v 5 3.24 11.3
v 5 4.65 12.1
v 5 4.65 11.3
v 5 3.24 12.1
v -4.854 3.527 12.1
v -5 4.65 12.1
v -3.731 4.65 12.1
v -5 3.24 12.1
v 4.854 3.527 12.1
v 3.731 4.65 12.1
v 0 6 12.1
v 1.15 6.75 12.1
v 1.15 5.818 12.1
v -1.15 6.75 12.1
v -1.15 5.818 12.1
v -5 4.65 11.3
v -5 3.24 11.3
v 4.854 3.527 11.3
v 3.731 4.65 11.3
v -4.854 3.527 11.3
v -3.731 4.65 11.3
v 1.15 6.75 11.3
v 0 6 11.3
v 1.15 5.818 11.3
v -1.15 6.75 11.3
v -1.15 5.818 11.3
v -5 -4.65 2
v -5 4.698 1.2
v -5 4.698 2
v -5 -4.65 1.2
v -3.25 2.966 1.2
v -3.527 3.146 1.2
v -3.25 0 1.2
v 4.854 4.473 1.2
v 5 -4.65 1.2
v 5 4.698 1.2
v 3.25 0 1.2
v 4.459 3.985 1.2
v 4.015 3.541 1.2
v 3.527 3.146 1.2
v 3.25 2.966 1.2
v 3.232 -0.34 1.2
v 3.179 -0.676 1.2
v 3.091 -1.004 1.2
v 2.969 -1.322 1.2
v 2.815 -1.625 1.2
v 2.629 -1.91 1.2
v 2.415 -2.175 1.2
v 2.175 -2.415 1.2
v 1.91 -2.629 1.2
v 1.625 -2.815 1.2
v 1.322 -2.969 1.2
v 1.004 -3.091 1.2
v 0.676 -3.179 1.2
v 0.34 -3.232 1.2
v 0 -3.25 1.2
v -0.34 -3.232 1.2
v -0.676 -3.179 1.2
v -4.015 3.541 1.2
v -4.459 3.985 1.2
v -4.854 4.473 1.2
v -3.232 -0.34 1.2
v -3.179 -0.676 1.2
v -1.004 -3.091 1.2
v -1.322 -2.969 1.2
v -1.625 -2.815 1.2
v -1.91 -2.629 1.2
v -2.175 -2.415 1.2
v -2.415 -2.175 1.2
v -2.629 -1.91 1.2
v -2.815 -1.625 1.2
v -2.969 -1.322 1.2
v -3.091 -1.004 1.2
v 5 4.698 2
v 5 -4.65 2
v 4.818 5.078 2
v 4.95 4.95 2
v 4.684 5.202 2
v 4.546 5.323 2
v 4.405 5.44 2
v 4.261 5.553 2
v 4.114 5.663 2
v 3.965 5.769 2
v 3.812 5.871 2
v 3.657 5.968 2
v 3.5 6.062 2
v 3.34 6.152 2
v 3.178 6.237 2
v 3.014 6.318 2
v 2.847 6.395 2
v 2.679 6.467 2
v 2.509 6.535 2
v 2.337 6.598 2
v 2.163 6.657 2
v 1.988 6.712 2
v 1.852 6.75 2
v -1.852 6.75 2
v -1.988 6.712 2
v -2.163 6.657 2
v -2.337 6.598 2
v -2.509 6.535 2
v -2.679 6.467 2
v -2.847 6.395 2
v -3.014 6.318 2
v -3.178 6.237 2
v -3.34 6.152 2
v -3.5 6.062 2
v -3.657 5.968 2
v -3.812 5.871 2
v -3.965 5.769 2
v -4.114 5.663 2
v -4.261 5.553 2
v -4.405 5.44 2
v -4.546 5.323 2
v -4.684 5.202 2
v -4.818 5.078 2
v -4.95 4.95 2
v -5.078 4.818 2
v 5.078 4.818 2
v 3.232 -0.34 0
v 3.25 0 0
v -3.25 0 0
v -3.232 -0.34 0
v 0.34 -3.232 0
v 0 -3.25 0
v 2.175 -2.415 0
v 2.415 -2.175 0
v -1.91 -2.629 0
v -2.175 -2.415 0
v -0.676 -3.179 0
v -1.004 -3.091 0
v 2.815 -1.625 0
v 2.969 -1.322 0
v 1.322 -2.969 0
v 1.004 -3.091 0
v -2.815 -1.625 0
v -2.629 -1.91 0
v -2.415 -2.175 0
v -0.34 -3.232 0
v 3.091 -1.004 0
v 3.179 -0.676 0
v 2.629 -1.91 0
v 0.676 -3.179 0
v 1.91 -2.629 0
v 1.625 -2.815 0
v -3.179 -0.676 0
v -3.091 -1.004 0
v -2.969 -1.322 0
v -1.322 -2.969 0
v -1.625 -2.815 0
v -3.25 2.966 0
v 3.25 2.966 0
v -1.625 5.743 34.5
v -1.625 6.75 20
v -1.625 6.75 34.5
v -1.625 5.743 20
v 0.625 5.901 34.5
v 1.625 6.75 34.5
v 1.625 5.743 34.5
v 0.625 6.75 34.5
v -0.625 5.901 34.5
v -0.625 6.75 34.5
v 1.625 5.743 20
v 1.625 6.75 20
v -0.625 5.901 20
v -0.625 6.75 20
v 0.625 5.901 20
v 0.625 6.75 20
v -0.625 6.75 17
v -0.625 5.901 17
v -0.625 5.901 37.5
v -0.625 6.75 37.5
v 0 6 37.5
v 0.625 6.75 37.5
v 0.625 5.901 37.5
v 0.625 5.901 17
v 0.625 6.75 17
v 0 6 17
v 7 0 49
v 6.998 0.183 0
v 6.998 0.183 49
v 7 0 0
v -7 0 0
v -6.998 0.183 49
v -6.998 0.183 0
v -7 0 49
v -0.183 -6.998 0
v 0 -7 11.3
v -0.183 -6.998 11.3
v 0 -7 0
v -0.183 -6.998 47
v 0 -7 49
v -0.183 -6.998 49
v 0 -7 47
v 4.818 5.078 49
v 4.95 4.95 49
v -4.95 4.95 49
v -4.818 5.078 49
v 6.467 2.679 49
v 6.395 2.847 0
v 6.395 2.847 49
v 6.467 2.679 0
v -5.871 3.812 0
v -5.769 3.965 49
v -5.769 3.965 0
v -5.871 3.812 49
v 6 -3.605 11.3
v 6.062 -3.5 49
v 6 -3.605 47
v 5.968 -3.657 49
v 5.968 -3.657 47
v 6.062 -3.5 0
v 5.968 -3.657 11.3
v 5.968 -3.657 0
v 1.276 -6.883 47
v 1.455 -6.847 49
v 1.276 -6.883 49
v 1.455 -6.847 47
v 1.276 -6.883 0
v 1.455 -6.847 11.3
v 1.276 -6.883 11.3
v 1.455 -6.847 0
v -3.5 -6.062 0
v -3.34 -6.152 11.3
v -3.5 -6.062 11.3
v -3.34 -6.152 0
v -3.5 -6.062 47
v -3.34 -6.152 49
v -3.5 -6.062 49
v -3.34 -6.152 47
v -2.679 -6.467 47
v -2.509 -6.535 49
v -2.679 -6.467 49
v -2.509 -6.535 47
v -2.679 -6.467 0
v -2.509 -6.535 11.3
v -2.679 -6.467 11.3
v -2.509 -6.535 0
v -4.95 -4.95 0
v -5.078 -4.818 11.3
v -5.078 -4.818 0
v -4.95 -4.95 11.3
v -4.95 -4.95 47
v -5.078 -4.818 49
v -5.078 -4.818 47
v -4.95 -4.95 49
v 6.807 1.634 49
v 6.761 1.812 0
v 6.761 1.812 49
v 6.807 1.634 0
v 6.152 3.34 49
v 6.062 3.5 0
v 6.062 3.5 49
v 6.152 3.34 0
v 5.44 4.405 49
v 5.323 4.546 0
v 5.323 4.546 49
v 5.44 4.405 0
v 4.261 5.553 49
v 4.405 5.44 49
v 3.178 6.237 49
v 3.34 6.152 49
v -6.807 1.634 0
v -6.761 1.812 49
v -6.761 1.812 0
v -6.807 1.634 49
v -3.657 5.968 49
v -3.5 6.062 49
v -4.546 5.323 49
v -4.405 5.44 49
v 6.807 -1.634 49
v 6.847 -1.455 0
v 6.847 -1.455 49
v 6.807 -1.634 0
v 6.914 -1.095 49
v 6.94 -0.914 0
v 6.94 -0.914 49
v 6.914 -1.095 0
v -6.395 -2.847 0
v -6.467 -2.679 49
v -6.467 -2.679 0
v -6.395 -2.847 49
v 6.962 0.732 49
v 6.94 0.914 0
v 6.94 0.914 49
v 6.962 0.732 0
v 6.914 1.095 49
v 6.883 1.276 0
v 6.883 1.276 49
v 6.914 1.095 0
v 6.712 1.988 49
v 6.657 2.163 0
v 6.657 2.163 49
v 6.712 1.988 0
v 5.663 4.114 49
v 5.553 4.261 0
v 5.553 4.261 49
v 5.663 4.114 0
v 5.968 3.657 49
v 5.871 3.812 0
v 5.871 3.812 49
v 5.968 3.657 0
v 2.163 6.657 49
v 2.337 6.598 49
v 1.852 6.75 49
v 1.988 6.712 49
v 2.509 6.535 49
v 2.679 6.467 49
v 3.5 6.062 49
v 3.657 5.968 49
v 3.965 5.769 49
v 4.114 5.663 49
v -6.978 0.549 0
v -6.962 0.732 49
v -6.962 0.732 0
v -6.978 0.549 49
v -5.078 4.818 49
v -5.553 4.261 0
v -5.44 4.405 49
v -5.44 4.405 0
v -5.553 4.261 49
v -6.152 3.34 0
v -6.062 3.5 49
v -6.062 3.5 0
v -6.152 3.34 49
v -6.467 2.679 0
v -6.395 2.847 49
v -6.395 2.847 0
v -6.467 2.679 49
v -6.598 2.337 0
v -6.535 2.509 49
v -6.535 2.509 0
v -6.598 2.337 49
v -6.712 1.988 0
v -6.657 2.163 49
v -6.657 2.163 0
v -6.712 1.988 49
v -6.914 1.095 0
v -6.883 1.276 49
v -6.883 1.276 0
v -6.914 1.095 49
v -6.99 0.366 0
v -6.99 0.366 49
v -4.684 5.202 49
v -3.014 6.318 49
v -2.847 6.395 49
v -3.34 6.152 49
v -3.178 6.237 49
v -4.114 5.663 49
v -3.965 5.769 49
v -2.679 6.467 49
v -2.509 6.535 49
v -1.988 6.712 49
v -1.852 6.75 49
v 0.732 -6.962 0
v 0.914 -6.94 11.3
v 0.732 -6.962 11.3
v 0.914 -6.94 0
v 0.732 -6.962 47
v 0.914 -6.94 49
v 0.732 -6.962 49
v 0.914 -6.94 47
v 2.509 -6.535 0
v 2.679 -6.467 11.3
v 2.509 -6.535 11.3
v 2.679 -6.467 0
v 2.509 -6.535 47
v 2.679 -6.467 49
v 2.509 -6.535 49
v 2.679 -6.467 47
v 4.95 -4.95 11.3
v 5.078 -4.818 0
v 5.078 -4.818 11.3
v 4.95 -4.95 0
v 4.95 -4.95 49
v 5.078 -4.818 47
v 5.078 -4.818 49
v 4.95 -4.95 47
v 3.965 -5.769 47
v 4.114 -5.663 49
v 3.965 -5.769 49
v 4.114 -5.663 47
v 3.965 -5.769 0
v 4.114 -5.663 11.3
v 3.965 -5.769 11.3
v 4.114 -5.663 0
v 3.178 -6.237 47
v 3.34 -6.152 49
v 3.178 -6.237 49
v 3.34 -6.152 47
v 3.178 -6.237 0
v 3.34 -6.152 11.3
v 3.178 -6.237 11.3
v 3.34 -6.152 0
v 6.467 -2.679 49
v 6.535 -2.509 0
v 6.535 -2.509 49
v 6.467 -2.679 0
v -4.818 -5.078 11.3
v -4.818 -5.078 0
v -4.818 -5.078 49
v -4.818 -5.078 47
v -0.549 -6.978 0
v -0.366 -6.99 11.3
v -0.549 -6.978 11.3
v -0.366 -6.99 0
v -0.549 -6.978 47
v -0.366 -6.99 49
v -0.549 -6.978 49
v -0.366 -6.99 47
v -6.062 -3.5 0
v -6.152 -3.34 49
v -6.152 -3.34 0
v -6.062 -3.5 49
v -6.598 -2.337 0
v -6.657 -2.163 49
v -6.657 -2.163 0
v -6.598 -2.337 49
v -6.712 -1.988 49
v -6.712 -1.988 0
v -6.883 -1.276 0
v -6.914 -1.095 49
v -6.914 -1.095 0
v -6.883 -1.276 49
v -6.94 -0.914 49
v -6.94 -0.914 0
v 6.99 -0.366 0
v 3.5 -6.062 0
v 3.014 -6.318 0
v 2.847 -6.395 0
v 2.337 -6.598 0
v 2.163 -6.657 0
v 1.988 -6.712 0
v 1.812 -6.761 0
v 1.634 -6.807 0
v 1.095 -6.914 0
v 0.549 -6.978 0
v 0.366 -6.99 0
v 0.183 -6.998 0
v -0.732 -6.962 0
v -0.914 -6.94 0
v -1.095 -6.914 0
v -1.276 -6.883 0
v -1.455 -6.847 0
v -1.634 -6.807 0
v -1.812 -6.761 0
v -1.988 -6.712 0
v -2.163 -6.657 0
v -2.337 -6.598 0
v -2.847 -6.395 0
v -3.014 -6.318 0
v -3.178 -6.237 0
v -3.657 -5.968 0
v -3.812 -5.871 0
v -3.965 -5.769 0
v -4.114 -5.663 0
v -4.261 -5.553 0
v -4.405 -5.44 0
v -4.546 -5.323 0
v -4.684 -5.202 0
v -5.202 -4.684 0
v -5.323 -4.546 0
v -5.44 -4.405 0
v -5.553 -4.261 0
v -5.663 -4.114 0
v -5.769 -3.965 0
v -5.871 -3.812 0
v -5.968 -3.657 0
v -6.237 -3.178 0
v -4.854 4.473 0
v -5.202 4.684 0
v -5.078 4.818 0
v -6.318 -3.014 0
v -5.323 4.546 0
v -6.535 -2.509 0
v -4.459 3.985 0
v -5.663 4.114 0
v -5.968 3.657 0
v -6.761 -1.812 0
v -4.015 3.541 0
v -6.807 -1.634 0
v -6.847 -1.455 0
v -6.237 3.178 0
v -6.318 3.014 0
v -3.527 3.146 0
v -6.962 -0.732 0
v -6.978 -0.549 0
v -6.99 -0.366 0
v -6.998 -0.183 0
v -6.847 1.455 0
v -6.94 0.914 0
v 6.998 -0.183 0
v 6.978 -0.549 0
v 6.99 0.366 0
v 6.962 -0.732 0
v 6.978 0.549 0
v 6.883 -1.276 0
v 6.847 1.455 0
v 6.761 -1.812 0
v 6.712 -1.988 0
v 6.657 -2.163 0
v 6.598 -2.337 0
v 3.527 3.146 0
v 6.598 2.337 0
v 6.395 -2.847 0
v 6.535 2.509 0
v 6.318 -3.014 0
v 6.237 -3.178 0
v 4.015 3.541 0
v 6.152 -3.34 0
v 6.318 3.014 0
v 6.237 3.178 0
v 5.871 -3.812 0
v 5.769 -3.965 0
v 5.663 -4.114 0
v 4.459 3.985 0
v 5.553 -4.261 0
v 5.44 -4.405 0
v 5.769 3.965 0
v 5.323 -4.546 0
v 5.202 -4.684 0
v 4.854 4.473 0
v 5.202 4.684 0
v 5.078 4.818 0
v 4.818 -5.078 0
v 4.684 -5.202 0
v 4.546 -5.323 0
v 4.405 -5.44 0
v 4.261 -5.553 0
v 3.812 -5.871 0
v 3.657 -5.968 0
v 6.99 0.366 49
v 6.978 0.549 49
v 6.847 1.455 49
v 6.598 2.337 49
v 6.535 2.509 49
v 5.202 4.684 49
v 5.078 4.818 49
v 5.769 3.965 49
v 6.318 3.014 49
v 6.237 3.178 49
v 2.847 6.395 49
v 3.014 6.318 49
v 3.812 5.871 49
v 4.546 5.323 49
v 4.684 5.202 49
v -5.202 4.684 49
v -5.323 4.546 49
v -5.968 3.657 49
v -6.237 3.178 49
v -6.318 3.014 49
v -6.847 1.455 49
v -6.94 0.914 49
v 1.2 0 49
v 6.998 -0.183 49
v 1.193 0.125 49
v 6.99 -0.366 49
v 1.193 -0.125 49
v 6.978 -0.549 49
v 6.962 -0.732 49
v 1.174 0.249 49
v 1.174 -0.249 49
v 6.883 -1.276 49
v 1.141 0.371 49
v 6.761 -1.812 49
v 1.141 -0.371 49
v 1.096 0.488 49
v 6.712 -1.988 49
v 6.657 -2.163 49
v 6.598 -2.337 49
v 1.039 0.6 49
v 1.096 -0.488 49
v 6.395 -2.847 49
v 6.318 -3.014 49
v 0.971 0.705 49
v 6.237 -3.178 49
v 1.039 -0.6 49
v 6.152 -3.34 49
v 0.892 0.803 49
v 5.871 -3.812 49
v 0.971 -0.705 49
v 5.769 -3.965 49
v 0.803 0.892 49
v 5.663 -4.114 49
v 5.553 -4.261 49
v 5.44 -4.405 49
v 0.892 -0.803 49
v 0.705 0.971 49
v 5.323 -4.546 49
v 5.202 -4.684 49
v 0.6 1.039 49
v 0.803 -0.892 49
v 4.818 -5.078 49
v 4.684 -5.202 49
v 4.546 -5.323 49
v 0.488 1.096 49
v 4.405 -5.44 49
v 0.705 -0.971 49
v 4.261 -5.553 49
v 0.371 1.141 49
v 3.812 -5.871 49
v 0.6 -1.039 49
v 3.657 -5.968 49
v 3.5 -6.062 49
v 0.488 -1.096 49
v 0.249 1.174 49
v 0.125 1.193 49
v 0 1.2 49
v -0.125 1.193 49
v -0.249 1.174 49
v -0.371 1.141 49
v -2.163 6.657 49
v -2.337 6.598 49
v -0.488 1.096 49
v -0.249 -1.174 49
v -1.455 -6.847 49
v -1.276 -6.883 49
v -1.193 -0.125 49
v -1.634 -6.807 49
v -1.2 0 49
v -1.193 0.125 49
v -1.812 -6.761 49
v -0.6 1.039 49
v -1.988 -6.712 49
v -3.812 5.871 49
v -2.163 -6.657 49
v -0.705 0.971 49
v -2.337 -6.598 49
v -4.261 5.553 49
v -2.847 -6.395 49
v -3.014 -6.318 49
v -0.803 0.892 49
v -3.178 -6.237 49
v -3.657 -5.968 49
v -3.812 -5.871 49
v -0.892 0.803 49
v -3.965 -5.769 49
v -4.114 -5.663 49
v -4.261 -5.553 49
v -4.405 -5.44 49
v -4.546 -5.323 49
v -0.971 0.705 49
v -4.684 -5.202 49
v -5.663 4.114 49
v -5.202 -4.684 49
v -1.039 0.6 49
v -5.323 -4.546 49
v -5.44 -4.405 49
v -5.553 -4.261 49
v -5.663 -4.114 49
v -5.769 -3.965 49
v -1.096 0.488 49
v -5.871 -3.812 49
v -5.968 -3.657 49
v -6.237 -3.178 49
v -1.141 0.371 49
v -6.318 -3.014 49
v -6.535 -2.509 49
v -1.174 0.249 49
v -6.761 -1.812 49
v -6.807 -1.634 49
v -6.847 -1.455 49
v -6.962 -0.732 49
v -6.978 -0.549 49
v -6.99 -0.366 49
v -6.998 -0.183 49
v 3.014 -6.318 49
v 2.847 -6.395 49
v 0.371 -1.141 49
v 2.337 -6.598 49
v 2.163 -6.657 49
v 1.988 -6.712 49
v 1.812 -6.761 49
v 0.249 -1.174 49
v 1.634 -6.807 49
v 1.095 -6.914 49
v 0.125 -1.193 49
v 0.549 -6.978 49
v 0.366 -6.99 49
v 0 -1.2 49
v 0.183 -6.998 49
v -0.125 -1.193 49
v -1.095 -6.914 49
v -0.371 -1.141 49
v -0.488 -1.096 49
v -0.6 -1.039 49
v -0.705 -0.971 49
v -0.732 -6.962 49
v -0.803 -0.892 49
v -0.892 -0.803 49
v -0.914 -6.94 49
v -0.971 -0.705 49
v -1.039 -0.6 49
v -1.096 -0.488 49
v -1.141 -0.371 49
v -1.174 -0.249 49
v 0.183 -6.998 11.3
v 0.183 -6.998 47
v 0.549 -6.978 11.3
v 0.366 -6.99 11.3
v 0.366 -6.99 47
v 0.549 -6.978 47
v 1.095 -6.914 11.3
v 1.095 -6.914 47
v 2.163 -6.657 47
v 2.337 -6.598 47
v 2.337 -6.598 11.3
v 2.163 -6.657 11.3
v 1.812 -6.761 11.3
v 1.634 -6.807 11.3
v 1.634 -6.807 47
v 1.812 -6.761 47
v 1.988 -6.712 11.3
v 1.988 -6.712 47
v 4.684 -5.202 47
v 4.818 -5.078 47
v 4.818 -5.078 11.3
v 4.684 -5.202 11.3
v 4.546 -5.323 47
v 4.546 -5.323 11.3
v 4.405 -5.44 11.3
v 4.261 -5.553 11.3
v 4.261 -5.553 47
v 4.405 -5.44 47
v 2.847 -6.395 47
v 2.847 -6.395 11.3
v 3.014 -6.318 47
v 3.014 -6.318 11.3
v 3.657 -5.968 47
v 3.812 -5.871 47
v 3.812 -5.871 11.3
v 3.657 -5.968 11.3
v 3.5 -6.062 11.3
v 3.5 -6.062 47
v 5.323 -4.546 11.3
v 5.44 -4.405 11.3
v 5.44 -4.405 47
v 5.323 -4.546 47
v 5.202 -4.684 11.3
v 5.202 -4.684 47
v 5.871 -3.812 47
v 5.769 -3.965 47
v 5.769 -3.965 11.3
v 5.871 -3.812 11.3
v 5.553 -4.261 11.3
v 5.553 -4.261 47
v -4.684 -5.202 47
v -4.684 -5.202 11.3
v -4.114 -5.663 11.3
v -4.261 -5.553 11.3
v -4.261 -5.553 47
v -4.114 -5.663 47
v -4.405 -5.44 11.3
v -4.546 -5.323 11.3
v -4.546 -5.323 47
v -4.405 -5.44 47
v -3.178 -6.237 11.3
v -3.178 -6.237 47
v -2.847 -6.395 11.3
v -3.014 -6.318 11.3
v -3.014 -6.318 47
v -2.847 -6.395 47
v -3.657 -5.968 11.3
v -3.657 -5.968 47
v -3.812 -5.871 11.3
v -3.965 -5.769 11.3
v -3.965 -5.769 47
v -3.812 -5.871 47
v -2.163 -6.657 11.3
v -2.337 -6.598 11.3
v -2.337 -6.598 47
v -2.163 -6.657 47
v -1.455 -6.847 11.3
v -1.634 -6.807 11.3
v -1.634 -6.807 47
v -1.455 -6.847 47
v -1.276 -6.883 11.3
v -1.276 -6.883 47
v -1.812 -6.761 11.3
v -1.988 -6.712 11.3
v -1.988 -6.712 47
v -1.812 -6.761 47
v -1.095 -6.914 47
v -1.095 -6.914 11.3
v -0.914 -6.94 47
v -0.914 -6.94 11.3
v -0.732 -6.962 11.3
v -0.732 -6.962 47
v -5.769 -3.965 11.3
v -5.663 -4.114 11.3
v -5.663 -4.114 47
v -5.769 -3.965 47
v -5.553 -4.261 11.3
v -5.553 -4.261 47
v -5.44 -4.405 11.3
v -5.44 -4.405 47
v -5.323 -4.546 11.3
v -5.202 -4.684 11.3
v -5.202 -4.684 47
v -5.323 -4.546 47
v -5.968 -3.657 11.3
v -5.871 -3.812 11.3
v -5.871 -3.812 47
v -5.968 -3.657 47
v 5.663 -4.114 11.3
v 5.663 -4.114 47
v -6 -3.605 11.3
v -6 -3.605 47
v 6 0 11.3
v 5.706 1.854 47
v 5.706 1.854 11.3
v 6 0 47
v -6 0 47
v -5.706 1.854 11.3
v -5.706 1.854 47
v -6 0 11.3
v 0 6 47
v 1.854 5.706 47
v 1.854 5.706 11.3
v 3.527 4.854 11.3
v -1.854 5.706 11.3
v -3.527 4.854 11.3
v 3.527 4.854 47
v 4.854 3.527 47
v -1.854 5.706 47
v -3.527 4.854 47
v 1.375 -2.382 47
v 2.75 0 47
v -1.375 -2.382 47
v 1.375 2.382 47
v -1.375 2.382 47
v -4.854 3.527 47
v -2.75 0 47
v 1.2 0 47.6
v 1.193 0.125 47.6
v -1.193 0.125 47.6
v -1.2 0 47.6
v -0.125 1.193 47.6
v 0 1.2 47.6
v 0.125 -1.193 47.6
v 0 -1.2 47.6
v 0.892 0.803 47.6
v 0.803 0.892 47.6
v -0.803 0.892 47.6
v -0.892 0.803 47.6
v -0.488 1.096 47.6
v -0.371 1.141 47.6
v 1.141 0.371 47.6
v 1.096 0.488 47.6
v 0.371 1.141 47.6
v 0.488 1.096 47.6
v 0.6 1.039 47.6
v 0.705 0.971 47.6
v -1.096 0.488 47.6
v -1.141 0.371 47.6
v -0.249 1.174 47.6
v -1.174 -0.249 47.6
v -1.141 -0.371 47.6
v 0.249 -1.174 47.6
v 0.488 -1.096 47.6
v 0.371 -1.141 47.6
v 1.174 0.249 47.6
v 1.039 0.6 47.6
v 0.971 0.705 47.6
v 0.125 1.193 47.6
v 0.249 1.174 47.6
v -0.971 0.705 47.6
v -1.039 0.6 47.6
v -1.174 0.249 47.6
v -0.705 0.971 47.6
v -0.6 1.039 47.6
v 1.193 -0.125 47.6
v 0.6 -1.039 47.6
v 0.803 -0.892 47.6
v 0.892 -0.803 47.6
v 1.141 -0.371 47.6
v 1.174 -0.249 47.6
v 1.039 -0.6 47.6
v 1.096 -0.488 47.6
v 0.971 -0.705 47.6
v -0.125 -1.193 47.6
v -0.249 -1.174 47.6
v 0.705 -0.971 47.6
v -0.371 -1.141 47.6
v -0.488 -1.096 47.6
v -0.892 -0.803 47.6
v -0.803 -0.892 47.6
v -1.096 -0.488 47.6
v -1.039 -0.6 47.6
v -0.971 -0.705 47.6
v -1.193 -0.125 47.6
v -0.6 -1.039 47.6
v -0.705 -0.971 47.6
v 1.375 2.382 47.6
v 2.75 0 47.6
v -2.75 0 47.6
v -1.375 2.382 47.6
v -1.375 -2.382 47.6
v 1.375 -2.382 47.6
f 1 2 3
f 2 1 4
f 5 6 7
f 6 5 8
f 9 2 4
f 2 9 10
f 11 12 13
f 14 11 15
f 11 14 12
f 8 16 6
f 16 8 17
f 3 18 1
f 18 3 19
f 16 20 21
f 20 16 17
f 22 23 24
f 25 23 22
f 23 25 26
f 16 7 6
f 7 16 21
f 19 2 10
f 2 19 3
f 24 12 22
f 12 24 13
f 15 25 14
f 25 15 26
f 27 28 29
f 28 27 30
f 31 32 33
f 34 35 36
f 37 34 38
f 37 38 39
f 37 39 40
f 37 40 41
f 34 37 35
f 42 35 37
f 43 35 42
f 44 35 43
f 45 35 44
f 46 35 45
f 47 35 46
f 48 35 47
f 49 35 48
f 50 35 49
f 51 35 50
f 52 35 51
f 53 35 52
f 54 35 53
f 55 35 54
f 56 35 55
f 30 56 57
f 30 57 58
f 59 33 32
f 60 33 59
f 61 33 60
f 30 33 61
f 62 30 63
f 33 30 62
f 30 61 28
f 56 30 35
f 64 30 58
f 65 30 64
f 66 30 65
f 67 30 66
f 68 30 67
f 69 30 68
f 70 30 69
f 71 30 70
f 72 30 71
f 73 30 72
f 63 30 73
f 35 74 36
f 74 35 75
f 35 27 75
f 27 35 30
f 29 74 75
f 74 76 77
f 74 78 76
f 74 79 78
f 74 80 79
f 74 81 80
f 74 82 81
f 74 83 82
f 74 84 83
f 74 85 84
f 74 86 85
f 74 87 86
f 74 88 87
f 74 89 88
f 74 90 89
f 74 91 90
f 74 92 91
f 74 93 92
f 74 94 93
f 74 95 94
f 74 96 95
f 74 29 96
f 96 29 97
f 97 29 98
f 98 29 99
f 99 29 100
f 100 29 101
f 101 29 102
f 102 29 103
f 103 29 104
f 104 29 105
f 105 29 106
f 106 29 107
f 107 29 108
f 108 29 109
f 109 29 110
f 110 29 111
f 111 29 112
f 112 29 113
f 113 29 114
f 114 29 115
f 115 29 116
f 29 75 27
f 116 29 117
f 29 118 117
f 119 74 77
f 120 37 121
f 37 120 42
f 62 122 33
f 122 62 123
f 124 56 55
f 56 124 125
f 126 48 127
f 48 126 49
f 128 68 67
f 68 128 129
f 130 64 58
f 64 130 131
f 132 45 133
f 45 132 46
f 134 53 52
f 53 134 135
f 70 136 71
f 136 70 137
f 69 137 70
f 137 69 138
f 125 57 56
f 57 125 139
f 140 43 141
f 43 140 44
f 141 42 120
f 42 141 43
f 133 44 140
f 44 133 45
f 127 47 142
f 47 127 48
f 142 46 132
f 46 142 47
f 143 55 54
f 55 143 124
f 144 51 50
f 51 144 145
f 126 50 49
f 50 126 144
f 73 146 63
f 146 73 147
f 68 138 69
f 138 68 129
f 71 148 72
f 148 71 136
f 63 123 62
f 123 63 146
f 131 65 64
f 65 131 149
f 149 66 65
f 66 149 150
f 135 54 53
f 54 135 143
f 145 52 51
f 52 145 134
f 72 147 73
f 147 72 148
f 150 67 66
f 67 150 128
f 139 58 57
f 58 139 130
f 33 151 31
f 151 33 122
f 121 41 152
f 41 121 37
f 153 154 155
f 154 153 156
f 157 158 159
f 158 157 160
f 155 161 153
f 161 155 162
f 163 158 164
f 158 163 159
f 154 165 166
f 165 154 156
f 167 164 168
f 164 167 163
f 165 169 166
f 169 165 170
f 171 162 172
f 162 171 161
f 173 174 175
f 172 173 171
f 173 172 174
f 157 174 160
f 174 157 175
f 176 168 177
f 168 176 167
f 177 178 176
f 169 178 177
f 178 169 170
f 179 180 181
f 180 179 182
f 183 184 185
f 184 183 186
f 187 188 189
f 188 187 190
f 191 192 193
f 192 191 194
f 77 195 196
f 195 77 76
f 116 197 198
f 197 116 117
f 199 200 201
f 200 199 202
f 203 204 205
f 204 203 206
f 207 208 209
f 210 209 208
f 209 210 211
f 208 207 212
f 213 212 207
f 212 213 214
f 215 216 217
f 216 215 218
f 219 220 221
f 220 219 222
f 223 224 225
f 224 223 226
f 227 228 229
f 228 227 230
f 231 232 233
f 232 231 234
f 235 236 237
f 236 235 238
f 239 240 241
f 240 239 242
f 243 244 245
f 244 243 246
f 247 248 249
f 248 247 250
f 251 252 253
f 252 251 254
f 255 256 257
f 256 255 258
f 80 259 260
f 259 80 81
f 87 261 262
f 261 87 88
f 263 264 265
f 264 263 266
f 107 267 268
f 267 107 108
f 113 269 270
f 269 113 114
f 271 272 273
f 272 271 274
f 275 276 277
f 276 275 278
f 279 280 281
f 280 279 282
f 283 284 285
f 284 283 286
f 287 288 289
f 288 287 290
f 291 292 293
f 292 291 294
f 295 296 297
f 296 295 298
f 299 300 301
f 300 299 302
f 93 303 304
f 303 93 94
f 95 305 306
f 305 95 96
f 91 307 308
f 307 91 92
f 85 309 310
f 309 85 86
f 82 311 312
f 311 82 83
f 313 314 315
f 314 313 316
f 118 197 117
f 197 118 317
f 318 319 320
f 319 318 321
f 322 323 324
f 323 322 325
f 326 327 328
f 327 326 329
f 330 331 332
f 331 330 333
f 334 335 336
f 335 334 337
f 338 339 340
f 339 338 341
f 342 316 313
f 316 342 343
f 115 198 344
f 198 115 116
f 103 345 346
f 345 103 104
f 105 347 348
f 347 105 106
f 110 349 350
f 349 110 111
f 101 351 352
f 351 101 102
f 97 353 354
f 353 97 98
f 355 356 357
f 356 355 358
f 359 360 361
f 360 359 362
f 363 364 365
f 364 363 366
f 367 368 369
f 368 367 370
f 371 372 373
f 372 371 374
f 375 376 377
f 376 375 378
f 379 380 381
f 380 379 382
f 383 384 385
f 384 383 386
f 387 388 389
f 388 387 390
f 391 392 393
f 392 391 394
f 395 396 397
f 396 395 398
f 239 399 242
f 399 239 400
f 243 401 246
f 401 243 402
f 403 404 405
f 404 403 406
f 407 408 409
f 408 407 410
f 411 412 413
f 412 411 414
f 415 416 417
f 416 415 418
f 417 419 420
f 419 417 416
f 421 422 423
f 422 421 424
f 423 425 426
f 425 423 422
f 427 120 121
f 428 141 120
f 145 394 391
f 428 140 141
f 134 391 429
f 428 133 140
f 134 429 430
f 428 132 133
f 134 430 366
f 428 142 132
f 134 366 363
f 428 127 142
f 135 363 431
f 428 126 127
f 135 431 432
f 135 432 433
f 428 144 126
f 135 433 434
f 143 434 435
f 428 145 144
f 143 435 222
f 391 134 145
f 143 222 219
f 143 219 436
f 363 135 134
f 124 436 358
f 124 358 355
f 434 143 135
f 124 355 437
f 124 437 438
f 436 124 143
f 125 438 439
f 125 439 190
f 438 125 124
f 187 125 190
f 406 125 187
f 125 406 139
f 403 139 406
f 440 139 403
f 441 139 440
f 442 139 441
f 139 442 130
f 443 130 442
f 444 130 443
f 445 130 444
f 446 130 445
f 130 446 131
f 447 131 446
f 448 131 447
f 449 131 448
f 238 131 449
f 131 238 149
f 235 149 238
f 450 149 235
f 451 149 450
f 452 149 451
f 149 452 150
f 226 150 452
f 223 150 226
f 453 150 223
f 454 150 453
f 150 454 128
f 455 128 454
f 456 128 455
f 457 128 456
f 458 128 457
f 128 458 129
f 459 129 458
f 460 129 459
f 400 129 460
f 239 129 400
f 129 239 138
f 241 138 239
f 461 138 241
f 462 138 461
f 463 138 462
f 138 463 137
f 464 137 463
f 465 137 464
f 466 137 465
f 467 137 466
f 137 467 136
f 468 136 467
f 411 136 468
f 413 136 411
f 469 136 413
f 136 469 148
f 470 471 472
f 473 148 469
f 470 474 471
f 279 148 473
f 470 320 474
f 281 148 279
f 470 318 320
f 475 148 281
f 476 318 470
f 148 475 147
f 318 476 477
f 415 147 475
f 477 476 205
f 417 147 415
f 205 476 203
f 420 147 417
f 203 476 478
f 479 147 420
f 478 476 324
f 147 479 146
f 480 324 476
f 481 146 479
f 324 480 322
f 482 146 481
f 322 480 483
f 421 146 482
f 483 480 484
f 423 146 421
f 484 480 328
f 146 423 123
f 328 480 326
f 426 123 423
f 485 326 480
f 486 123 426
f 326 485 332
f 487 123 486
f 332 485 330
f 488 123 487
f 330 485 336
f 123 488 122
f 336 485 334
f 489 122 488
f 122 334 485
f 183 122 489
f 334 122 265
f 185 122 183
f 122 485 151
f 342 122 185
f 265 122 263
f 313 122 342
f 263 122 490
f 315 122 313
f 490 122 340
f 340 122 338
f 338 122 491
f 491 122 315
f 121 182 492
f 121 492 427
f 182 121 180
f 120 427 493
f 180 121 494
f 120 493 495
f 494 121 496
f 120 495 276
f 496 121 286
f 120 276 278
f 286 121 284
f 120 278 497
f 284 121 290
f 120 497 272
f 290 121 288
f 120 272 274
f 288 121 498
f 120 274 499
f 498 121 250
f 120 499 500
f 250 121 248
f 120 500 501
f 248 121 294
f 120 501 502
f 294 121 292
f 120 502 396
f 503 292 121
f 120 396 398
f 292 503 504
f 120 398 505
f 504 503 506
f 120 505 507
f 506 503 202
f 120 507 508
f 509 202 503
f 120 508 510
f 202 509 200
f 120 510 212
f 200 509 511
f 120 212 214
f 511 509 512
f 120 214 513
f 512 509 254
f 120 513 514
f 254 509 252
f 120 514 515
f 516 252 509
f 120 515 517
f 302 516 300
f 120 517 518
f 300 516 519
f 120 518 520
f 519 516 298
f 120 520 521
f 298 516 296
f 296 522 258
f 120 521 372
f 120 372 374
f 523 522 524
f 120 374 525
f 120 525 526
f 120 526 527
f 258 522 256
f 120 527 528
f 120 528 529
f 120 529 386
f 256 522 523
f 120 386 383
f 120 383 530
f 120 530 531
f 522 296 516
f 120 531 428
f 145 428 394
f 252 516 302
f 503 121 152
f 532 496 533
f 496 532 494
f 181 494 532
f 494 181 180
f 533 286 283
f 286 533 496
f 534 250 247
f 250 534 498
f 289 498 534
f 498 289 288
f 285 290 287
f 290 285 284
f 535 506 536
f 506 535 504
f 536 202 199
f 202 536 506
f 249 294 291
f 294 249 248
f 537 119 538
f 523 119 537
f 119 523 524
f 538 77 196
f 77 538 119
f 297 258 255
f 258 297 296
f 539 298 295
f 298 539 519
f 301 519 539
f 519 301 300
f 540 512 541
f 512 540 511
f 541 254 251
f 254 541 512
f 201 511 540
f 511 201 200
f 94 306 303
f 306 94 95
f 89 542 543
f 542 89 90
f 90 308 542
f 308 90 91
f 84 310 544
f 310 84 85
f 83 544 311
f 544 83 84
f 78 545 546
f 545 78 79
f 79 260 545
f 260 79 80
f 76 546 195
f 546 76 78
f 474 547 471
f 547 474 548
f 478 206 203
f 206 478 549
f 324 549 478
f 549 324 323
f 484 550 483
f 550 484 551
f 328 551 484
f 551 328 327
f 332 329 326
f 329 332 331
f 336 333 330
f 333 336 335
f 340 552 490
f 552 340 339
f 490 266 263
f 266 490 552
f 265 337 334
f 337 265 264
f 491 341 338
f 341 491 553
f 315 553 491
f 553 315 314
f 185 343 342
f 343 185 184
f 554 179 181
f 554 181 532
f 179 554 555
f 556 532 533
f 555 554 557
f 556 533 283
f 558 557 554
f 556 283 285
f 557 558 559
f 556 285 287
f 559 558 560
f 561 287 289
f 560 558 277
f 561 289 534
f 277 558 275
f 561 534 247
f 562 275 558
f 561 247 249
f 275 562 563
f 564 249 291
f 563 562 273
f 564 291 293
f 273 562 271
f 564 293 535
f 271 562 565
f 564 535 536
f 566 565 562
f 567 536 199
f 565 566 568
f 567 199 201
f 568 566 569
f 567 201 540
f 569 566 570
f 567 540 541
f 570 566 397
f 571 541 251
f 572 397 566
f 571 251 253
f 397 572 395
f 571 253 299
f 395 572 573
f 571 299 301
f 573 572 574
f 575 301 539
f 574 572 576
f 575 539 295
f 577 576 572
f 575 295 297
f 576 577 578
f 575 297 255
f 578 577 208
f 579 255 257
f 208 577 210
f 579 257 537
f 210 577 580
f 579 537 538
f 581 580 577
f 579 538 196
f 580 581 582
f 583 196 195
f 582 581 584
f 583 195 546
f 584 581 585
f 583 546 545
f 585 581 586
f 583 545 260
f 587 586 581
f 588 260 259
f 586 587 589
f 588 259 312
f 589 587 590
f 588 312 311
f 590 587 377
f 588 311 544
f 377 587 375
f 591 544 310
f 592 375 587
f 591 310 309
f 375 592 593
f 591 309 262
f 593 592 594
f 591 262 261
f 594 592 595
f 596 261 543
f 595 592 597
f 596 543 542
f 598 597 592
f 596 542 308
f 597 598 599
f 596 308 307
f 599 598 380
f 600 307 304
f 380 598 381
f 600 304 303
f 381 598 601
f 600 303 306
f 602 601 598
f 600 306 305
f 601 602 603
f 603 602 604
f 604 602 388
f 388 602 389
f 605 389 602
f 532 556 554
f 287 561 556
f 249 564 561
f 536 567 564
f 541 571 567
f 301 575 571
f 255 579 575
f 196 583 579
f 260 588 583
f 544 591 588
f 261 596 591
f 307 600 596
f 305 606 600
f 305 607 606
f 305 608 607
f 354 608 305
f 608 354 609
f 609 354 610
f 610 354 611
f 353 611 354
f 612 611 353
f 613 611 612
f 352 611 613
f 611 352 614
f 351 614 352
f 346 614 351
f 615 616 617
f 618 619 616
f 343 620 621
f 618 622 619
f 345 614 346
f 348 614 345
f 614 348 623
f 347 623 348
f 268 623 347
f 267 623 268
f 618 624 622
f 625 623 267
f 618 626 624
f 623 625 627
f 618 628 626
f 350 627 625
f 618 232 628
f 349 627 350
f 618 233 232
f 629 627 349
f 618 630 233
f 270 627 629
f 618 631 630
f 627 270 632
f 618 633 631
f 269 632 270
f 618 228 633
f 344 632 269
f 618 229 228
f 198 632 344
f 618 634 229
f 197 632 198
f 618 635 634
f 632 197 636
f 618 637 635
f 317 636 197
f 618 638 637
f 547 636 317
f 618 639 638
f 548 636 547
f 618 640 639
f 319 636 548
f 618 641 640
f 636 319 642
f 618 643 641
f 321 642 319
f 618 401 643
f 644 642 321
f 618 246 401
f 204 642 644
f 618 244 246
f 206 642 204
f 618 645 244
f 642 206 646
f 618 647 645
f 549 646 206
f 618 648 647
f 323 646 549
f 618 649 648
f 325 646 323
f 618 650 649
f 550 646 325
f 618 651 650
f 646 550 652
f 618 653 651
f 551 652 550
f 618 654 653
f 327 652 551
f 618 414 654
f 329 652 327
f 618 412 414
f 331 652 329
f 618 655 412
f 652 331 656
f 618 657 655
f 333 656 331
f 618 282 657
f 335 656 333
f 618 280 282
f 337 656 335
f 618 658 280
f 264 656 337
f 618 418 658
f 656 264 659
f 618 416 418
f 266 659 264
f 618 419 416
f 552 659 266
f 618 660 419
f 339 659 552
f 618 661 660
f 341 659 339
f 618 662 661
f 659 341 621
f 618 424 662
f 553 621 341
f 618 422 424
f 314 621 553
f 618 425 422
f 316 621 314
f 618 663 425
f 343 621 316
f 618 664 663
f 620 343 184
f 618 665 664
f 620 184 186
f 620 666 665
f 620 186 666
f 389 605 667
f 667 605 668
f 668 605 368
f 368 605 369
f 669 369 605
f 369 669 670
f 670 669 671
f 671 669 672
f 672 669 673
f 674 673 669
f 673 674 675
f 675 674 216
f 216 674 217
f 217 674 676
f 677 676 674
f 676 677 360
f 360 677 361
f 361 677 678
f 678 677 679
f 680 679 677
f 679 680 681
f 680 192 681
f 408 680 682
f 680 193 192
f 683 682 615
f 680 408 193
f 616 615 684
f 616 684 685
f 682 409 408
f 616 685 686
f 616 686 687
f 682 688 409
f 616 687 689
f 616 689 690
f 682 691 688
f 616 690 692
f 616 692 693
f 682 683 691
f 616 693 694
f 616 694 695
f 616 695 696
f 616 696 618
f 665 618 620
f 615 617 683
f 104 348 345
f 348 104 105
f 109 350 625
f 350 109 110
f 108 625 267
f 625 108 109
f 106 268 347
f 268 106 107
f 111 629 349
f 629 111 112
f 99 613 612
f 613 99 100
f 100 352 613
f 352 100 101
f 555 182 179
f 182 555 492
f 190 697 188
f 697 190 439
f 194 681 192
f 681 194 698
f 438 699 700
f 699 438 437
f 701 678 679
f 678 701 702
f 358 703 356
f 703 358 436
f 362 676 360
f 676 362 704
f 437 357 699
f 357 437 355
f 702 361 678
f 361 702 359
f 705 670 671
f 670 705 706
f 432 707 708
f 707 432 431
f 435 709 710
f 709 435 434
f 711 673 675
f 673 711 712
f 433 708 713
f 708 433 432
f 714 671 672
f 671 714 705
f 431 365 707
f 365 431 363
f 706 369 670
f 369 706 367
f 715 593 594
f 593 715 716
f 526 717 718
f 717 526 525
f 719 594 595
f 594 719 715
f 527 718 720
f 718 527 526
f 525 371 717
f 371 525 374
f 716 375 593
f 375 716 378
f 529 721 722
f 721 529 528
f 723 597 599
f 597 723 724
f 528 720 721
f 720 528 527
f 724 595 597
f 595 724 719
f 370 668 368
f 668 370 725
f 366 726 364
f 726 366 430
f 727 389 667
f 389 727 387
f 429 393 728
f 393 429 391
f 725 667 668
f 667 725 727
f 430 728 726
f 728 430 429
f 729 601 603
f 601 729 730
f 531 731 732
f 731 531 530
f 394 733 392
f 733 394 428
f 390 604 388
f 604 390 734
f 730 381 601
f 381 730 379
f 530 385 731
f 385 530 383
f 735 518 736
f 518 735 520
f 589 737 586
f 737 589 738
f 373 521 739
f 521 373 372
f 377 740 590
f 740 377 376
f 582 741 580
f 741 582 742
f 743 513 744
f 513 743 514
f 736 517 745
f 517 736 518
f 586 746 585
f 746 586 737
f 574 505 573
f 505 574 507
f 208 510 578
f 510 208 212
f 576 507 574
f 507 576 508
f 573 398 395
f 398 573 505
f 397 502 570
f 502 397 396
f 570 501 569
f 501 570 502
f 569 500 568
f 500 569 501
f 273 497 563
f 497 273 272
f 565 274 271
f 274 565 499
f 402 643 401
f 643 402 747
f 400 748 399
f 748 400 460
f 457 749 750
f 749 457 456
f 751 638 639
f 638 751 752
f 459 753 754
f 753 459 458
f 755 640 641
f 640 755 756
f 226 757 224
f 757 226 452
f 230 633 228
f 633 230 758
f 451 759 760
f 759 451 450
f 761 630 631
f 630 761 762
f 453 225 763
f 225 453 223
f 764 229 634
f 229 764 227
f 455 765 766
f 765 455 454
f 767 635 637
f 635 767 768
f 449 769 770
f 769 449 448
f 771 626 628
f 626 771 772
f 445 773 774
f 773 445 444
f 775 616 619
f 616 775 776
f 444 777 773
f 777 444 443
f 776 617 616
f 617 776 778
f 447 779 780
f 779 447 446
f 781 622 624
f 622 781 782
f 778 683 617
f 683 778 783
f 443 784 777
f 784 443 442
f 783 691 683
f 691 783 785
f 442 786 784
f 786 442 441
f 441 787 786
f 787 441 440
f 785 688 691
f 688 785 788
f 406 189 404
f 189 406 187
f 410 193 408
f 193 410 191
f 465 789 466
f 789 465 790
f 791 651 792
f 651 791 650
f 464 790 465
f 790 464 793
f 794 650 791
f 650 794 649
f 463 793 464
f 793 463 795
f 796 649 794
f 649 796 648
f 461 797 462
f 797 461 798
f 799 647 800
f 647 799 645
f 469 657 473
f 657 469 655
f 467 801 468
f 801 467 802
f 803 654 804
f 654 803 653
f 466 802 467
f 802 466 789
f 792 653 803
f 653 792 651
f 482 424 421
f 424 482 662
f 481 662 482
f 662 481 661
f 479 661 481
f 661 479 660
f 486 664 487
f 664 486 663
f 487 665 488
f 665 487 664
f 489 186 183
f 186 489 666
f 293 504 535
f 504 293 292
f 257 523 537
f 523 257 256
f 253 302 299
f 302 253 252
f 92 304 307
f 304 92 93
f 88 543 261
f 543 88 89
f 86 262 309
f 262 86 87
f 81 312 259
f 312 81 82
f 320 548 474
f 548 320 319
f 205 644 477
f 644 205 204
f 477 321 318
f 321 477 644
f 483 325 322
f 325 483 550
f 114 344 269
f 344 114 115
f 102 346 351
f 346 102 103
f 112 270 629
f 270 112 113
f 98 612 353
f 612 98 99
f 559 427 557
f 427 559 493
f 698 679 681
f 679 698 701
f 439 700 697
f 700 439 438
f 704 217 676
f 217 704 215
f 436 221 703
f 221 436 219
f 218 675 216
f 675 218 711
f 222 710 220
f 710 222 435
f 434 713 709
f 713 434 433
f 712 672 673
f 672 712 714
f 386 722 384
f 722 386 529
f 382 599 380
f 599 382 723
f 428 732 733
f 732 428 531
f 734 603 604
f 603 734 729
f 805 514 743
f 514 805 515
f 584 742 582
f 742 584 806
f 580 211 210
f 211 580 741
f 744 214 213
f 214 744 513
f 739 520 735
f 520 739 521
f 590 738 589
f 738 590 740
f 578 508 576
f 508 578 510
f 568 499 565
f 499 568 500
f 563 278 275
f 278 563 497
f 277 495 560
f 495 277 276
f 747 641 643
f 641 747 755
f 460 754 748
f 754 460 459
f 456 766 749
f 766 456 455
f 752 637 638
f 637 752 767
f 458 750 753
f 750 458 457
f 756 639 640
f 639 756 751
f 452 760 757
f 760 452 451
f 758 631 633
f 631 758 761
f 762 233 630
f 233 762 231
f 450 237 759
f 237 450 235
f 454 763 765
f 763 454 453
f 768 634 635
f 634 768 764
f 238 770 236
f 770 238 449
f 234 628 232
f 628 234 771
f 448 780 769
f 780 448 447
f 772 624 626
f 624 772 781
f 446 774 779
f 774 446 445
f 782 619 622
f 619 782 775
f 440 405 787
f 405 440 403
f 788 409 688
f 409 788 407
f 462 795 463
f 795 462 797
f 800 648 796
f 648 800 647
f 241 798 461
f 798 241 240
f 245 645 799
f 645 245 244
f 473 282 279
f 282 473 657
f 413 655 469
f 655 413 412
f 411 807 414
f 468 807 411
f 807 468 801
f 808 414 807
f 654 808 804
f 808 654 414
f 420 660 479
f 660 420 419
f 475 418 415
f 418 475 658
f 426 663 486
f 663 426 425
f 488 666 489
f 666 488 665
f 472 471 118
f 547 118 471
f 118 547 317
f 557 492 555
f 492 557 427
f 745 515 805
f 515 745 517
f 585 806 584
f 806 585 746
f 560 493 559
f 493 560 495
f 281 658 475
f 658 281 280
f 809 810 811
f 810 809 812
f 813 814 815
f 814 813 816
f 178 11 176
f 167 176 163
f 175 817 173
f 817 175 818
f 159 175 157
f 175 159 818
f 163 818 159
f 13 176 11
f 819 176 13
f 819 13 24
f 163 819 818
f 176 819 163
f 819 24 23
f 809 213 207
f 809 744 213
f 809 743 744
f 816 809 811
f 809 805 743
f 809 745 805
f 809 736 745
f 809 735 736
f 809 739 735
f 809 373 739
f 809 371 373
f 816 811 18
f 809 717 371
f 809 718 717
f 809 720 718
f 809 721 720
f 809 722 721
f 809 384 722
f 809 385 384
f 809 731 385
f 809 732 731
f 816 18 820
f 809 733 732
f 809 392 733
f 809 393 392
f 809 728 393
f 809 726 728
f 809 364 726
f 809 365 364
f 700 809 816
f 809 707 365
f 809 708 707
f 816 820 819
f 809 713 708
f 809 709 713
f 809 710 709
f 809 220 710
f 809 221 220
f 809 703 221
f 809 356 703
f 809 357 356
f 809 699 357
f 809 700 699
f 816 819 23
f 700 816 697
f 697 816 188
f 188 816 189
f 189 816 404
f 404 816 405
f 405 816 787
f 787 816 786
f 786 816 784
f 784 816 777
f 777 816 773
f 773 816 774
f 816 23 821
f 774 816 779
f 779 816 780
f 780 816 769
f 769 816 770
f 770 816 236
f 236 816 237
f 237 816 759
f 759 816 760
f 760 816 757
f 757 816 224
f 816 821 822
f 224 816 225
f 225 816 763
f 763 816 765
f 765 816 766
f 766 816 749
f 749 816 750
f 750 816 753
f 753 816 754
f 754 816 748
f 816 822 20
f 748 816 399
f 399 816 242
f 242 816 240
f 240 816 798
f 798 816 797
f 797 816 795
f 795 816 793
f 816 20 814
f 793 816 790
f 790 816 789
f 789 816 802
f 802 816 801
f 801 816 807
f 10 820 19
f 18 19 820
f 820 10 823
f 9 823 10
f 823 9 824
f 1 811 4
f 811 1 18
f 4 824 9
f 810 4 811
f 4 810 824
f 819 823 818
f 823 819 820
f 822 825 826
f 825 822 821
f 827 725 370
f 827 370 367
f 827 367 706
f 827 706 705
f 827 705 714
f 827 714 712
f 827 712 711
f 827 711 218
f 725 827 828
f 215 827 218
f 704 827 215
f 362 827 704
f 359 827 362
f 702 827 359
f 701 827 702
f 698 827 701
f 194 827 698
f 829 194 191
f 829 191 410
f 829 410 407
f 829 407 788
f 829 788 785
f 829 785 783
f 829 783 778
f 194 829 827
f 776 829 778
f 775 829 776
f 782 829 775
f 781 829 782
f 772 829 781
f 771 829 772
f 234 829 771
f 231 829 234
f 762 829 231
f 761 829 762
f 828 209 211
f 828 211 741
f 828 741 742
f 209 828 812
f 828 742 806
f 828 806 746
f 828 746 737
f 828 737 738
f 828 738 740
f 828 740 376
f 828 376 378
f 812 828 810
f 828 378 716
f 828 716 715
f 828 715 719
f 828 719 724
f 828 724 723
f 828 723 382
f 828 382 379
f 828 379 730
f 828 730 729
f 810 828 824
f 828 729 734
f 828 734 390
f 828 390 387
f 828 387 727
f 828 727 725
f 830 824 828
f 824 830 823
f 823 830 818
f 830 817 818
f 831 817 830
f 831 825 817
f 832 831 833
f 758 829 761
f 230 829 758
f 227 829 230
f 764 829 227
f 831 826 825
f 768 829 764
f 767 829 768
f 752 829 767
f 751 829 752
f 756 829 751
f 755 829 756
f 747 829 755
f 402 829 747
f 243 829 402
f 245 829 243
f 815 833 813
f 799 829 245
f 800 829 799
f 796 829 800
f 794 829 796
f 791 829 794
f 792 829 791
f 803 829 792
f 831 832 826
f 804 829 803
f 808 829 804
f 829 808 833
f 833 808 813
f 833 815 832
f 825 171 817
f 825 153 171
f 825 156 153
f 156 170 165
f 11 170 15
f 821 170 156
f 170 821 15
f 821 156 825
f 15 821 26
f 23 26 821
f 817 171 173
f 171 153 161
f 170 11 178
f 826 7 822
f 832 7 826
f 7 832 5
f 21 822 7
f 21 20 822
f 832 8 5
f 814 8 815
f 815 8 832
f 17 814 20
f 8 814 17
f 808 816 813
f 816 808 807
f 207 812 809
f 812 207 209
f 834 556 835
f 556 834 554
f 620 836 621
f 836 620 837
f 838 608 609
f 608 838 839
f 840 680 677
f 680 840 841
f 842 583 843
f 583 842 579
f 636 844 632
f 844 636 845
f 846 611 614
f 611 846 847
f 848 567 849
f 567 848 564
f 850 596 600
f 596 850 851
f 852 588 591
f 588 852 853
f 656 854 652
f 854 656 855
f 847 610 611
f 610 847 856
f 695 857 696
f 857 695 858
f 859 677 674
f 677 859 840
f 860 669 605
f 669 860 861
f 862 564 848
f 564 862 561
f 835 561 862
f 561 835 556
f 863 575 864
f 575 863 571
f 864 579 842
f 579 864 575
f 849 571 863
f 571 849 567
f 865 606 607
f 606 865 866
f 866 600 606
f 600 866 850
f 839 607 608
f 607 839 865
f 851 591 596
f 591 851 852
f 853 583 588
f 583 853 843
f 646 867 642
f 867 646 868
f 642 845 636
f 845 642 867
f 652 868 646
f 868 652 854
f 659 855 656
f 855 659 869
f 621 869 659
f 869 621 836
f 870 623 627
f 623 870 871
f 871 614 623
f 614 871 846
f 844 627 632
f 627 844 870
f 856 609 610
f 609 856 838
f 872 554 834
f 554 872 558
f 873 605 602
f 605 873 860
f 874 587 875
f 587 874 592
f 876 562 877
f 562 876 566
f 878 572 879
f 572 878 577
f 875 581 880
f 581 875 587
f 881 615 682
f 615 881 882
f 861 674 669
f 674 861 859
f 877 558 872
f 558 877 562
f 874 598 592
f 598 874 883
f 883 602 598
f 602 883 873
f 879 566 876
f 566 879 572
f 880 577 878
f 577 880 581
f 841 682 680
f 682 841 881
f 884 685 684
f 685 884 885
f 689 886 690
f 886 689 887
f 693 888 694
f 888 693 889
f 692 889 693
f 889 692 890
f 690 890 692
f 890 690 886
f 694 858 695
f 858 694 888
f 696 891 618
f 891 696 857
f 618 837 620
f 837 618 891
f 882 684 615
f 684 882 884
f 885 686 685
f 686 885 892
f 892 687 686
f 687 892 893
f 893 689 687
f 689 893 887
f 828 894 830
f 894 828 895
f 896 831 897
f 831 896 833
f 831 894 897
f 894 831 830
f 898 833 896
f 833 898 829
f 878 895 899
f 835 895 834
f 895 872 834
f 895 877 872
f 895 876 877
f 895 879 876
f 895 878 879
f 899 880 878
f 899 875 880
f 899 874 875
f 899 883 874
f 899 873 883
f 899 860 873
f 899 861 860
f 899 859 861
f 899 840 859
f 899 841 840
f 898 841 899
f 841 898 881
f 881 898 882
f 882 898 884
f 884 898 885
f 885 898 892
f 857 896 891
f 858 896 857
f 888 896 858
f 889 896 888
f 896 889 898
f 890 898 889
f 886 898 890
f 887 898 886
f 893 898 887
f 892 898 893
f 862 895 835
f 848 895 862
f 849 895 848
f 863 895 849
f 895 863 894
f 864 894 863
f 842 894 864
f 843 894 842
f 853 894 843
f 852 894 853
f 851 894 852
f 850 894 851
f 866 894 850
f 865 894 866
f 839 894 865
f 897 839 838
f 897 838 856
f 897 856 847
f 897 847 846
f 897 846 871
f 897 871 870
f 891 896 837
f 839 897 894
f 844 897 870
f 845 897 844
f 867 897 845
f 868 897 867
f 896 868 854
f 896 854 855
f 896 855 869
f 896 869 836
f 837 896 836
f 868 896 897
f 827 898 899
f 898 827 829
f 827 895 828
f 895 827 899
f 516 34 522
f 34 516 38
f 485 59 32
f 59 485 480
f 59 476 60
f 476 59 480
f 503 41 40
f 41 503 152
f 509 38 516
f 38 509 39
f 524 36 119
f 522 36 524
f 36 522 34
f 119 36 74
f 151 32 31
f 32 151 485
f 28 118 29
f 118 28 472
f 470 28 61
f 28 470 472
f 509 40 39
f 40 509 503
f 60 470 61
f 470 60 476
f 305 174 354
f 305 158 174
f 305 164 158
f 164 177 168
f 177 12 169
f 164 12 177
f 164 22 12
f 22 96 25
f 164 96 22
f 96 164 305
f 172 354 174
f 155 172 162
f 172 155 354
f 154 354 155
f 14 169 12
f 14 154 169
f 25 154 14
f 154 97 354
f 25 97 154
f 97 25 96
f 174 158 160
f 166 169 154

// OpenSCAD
include <BOSL/constants.scad>
use <BOSL/shapes.scad>
use <BOSL/transforms.scad>

compressedSpring = 5.5;

//positive terminal minimum 1.0mm (included in height) -- max 5.5mm
//negative terminal minimum diameter 7mm
hAA=50.0-1;
dAA=14.0;

//positive terminal minimum XXXmm (included in height) -- max XX
//negative terminal minimum diamter XXmm
hN=30.2+compressedSpring;
dN=12;

//Metal Battery Spring Terminals
//additions are for "wiggle room"
slotWidthX = 9.7 + 0.3;
slotDepthY=9.0 + 0.3;
slotThicknessZ=0.40*2; // metal tab only -- multiplier gives wiggle room
tabWidthX=2.3;
tabDepthY=6.0;
tabOffset=0; // in degrees 

//Plastic Reed Switch
reedL = 14.5;
reedW = 3.25;
reedH = 3.14;

topThickness = 2;
shiftForward=0;


//General variables
$fn=60; //circle smoothness
overlap = 1.00; // overlap ensures that subtractions go beyond the edges

difference() {

  //Overall shape (of a AA battery)
  AA();

  //Battery Cutout
  forward(shiftForward) up(hAA-hN-topThickness) N();
  forward(shiftForward) up(hAA-hN-topThickness) forward(dN/2) Nopening();

  //Positive Pole (M2.5)
  up(hAA-topThickness) color("green") cyl(d=2.4, h=2.6, align=V_UP); 
  up(hAA-topThickness) color("lime") cyl(d=5.5, h=0.6, align=V_UP, $fn=6);

  //spring insert for negative pole of battery
   up(hAA-hN-topThickness) zrot(180-tabOffset) slot();
  
  //Bottom tab (negative)
  up(2) zrot(tabOffset) xrot(180) slot();  
  up(2) zrot(tabOffset) xrot(180) slotopening(); 
  //clear out fiddly parts
  back(8) color("orange") cyl(d=dN, h=2, align=V_UP); 
  
  //Flatten holder
  back((dAA/2)+0.75) color("gray") cuboid([dAA, 2, hAA], align=V_UP); //flatten back
  //forward((dAA/2)+0.25) color("gray") cuboid([dAA, 2, hAA], align=V_UP); //flatten front
  
  
  //Reed switch
  up(20) back((dAA/2)-(reedH/2)-0)  #reed();
  
}
  
 //preview just the slot
 //up(hAA+10)   slot();


//----------------------------------------------------------------------------------------

module AA() { color("orange") cyl(d=dAA, h=hAA, align=V_UP, $fn=240); }
module N() { color("gold") cyl(d=dN, h=hN, align=V_UP, $fn=20); }
module Nopening() { color("khaki") cuboid([dN, dN , hN], align=V_UP); }

//----------------------------------------------------------------------------------------

module reed() { 
  color("slategray") cuboid([reedW, reedH, reedL], align=V_UP);
  down(3) color("lightgray") cuboid([1.25, reedH, reedL+3+3], align=V_UP);
}

//----------------------------------------------------------------------------------------

module slot() { 
  color("magenta") cuboid([slotWidthX, slotDepthY, slotThicknessZ], align=V_UP);
  color("deeppink") cyl(d=6.5, h=slotThicknessZ+1.6, align=V_UP);
  forward((slotDepthY/2)+(tabDepthY/2)) color("hotpink") cuboid([tabWidthX, tabDepthY, slotThicknessZ], align=V_UP);
  //slotopening();
}

module slotopening() {
  forward(dAA/2) color("pink") cuboid([slotWidthX, dAA, slotThicknessZ], align=V_UP);
  forward(dAA/2) color("lightpink") cuboid([6.5, dAA, slotThicknessZ+1.6], align=V_UP);
}

//----------------------------------------------------------------------------------------
